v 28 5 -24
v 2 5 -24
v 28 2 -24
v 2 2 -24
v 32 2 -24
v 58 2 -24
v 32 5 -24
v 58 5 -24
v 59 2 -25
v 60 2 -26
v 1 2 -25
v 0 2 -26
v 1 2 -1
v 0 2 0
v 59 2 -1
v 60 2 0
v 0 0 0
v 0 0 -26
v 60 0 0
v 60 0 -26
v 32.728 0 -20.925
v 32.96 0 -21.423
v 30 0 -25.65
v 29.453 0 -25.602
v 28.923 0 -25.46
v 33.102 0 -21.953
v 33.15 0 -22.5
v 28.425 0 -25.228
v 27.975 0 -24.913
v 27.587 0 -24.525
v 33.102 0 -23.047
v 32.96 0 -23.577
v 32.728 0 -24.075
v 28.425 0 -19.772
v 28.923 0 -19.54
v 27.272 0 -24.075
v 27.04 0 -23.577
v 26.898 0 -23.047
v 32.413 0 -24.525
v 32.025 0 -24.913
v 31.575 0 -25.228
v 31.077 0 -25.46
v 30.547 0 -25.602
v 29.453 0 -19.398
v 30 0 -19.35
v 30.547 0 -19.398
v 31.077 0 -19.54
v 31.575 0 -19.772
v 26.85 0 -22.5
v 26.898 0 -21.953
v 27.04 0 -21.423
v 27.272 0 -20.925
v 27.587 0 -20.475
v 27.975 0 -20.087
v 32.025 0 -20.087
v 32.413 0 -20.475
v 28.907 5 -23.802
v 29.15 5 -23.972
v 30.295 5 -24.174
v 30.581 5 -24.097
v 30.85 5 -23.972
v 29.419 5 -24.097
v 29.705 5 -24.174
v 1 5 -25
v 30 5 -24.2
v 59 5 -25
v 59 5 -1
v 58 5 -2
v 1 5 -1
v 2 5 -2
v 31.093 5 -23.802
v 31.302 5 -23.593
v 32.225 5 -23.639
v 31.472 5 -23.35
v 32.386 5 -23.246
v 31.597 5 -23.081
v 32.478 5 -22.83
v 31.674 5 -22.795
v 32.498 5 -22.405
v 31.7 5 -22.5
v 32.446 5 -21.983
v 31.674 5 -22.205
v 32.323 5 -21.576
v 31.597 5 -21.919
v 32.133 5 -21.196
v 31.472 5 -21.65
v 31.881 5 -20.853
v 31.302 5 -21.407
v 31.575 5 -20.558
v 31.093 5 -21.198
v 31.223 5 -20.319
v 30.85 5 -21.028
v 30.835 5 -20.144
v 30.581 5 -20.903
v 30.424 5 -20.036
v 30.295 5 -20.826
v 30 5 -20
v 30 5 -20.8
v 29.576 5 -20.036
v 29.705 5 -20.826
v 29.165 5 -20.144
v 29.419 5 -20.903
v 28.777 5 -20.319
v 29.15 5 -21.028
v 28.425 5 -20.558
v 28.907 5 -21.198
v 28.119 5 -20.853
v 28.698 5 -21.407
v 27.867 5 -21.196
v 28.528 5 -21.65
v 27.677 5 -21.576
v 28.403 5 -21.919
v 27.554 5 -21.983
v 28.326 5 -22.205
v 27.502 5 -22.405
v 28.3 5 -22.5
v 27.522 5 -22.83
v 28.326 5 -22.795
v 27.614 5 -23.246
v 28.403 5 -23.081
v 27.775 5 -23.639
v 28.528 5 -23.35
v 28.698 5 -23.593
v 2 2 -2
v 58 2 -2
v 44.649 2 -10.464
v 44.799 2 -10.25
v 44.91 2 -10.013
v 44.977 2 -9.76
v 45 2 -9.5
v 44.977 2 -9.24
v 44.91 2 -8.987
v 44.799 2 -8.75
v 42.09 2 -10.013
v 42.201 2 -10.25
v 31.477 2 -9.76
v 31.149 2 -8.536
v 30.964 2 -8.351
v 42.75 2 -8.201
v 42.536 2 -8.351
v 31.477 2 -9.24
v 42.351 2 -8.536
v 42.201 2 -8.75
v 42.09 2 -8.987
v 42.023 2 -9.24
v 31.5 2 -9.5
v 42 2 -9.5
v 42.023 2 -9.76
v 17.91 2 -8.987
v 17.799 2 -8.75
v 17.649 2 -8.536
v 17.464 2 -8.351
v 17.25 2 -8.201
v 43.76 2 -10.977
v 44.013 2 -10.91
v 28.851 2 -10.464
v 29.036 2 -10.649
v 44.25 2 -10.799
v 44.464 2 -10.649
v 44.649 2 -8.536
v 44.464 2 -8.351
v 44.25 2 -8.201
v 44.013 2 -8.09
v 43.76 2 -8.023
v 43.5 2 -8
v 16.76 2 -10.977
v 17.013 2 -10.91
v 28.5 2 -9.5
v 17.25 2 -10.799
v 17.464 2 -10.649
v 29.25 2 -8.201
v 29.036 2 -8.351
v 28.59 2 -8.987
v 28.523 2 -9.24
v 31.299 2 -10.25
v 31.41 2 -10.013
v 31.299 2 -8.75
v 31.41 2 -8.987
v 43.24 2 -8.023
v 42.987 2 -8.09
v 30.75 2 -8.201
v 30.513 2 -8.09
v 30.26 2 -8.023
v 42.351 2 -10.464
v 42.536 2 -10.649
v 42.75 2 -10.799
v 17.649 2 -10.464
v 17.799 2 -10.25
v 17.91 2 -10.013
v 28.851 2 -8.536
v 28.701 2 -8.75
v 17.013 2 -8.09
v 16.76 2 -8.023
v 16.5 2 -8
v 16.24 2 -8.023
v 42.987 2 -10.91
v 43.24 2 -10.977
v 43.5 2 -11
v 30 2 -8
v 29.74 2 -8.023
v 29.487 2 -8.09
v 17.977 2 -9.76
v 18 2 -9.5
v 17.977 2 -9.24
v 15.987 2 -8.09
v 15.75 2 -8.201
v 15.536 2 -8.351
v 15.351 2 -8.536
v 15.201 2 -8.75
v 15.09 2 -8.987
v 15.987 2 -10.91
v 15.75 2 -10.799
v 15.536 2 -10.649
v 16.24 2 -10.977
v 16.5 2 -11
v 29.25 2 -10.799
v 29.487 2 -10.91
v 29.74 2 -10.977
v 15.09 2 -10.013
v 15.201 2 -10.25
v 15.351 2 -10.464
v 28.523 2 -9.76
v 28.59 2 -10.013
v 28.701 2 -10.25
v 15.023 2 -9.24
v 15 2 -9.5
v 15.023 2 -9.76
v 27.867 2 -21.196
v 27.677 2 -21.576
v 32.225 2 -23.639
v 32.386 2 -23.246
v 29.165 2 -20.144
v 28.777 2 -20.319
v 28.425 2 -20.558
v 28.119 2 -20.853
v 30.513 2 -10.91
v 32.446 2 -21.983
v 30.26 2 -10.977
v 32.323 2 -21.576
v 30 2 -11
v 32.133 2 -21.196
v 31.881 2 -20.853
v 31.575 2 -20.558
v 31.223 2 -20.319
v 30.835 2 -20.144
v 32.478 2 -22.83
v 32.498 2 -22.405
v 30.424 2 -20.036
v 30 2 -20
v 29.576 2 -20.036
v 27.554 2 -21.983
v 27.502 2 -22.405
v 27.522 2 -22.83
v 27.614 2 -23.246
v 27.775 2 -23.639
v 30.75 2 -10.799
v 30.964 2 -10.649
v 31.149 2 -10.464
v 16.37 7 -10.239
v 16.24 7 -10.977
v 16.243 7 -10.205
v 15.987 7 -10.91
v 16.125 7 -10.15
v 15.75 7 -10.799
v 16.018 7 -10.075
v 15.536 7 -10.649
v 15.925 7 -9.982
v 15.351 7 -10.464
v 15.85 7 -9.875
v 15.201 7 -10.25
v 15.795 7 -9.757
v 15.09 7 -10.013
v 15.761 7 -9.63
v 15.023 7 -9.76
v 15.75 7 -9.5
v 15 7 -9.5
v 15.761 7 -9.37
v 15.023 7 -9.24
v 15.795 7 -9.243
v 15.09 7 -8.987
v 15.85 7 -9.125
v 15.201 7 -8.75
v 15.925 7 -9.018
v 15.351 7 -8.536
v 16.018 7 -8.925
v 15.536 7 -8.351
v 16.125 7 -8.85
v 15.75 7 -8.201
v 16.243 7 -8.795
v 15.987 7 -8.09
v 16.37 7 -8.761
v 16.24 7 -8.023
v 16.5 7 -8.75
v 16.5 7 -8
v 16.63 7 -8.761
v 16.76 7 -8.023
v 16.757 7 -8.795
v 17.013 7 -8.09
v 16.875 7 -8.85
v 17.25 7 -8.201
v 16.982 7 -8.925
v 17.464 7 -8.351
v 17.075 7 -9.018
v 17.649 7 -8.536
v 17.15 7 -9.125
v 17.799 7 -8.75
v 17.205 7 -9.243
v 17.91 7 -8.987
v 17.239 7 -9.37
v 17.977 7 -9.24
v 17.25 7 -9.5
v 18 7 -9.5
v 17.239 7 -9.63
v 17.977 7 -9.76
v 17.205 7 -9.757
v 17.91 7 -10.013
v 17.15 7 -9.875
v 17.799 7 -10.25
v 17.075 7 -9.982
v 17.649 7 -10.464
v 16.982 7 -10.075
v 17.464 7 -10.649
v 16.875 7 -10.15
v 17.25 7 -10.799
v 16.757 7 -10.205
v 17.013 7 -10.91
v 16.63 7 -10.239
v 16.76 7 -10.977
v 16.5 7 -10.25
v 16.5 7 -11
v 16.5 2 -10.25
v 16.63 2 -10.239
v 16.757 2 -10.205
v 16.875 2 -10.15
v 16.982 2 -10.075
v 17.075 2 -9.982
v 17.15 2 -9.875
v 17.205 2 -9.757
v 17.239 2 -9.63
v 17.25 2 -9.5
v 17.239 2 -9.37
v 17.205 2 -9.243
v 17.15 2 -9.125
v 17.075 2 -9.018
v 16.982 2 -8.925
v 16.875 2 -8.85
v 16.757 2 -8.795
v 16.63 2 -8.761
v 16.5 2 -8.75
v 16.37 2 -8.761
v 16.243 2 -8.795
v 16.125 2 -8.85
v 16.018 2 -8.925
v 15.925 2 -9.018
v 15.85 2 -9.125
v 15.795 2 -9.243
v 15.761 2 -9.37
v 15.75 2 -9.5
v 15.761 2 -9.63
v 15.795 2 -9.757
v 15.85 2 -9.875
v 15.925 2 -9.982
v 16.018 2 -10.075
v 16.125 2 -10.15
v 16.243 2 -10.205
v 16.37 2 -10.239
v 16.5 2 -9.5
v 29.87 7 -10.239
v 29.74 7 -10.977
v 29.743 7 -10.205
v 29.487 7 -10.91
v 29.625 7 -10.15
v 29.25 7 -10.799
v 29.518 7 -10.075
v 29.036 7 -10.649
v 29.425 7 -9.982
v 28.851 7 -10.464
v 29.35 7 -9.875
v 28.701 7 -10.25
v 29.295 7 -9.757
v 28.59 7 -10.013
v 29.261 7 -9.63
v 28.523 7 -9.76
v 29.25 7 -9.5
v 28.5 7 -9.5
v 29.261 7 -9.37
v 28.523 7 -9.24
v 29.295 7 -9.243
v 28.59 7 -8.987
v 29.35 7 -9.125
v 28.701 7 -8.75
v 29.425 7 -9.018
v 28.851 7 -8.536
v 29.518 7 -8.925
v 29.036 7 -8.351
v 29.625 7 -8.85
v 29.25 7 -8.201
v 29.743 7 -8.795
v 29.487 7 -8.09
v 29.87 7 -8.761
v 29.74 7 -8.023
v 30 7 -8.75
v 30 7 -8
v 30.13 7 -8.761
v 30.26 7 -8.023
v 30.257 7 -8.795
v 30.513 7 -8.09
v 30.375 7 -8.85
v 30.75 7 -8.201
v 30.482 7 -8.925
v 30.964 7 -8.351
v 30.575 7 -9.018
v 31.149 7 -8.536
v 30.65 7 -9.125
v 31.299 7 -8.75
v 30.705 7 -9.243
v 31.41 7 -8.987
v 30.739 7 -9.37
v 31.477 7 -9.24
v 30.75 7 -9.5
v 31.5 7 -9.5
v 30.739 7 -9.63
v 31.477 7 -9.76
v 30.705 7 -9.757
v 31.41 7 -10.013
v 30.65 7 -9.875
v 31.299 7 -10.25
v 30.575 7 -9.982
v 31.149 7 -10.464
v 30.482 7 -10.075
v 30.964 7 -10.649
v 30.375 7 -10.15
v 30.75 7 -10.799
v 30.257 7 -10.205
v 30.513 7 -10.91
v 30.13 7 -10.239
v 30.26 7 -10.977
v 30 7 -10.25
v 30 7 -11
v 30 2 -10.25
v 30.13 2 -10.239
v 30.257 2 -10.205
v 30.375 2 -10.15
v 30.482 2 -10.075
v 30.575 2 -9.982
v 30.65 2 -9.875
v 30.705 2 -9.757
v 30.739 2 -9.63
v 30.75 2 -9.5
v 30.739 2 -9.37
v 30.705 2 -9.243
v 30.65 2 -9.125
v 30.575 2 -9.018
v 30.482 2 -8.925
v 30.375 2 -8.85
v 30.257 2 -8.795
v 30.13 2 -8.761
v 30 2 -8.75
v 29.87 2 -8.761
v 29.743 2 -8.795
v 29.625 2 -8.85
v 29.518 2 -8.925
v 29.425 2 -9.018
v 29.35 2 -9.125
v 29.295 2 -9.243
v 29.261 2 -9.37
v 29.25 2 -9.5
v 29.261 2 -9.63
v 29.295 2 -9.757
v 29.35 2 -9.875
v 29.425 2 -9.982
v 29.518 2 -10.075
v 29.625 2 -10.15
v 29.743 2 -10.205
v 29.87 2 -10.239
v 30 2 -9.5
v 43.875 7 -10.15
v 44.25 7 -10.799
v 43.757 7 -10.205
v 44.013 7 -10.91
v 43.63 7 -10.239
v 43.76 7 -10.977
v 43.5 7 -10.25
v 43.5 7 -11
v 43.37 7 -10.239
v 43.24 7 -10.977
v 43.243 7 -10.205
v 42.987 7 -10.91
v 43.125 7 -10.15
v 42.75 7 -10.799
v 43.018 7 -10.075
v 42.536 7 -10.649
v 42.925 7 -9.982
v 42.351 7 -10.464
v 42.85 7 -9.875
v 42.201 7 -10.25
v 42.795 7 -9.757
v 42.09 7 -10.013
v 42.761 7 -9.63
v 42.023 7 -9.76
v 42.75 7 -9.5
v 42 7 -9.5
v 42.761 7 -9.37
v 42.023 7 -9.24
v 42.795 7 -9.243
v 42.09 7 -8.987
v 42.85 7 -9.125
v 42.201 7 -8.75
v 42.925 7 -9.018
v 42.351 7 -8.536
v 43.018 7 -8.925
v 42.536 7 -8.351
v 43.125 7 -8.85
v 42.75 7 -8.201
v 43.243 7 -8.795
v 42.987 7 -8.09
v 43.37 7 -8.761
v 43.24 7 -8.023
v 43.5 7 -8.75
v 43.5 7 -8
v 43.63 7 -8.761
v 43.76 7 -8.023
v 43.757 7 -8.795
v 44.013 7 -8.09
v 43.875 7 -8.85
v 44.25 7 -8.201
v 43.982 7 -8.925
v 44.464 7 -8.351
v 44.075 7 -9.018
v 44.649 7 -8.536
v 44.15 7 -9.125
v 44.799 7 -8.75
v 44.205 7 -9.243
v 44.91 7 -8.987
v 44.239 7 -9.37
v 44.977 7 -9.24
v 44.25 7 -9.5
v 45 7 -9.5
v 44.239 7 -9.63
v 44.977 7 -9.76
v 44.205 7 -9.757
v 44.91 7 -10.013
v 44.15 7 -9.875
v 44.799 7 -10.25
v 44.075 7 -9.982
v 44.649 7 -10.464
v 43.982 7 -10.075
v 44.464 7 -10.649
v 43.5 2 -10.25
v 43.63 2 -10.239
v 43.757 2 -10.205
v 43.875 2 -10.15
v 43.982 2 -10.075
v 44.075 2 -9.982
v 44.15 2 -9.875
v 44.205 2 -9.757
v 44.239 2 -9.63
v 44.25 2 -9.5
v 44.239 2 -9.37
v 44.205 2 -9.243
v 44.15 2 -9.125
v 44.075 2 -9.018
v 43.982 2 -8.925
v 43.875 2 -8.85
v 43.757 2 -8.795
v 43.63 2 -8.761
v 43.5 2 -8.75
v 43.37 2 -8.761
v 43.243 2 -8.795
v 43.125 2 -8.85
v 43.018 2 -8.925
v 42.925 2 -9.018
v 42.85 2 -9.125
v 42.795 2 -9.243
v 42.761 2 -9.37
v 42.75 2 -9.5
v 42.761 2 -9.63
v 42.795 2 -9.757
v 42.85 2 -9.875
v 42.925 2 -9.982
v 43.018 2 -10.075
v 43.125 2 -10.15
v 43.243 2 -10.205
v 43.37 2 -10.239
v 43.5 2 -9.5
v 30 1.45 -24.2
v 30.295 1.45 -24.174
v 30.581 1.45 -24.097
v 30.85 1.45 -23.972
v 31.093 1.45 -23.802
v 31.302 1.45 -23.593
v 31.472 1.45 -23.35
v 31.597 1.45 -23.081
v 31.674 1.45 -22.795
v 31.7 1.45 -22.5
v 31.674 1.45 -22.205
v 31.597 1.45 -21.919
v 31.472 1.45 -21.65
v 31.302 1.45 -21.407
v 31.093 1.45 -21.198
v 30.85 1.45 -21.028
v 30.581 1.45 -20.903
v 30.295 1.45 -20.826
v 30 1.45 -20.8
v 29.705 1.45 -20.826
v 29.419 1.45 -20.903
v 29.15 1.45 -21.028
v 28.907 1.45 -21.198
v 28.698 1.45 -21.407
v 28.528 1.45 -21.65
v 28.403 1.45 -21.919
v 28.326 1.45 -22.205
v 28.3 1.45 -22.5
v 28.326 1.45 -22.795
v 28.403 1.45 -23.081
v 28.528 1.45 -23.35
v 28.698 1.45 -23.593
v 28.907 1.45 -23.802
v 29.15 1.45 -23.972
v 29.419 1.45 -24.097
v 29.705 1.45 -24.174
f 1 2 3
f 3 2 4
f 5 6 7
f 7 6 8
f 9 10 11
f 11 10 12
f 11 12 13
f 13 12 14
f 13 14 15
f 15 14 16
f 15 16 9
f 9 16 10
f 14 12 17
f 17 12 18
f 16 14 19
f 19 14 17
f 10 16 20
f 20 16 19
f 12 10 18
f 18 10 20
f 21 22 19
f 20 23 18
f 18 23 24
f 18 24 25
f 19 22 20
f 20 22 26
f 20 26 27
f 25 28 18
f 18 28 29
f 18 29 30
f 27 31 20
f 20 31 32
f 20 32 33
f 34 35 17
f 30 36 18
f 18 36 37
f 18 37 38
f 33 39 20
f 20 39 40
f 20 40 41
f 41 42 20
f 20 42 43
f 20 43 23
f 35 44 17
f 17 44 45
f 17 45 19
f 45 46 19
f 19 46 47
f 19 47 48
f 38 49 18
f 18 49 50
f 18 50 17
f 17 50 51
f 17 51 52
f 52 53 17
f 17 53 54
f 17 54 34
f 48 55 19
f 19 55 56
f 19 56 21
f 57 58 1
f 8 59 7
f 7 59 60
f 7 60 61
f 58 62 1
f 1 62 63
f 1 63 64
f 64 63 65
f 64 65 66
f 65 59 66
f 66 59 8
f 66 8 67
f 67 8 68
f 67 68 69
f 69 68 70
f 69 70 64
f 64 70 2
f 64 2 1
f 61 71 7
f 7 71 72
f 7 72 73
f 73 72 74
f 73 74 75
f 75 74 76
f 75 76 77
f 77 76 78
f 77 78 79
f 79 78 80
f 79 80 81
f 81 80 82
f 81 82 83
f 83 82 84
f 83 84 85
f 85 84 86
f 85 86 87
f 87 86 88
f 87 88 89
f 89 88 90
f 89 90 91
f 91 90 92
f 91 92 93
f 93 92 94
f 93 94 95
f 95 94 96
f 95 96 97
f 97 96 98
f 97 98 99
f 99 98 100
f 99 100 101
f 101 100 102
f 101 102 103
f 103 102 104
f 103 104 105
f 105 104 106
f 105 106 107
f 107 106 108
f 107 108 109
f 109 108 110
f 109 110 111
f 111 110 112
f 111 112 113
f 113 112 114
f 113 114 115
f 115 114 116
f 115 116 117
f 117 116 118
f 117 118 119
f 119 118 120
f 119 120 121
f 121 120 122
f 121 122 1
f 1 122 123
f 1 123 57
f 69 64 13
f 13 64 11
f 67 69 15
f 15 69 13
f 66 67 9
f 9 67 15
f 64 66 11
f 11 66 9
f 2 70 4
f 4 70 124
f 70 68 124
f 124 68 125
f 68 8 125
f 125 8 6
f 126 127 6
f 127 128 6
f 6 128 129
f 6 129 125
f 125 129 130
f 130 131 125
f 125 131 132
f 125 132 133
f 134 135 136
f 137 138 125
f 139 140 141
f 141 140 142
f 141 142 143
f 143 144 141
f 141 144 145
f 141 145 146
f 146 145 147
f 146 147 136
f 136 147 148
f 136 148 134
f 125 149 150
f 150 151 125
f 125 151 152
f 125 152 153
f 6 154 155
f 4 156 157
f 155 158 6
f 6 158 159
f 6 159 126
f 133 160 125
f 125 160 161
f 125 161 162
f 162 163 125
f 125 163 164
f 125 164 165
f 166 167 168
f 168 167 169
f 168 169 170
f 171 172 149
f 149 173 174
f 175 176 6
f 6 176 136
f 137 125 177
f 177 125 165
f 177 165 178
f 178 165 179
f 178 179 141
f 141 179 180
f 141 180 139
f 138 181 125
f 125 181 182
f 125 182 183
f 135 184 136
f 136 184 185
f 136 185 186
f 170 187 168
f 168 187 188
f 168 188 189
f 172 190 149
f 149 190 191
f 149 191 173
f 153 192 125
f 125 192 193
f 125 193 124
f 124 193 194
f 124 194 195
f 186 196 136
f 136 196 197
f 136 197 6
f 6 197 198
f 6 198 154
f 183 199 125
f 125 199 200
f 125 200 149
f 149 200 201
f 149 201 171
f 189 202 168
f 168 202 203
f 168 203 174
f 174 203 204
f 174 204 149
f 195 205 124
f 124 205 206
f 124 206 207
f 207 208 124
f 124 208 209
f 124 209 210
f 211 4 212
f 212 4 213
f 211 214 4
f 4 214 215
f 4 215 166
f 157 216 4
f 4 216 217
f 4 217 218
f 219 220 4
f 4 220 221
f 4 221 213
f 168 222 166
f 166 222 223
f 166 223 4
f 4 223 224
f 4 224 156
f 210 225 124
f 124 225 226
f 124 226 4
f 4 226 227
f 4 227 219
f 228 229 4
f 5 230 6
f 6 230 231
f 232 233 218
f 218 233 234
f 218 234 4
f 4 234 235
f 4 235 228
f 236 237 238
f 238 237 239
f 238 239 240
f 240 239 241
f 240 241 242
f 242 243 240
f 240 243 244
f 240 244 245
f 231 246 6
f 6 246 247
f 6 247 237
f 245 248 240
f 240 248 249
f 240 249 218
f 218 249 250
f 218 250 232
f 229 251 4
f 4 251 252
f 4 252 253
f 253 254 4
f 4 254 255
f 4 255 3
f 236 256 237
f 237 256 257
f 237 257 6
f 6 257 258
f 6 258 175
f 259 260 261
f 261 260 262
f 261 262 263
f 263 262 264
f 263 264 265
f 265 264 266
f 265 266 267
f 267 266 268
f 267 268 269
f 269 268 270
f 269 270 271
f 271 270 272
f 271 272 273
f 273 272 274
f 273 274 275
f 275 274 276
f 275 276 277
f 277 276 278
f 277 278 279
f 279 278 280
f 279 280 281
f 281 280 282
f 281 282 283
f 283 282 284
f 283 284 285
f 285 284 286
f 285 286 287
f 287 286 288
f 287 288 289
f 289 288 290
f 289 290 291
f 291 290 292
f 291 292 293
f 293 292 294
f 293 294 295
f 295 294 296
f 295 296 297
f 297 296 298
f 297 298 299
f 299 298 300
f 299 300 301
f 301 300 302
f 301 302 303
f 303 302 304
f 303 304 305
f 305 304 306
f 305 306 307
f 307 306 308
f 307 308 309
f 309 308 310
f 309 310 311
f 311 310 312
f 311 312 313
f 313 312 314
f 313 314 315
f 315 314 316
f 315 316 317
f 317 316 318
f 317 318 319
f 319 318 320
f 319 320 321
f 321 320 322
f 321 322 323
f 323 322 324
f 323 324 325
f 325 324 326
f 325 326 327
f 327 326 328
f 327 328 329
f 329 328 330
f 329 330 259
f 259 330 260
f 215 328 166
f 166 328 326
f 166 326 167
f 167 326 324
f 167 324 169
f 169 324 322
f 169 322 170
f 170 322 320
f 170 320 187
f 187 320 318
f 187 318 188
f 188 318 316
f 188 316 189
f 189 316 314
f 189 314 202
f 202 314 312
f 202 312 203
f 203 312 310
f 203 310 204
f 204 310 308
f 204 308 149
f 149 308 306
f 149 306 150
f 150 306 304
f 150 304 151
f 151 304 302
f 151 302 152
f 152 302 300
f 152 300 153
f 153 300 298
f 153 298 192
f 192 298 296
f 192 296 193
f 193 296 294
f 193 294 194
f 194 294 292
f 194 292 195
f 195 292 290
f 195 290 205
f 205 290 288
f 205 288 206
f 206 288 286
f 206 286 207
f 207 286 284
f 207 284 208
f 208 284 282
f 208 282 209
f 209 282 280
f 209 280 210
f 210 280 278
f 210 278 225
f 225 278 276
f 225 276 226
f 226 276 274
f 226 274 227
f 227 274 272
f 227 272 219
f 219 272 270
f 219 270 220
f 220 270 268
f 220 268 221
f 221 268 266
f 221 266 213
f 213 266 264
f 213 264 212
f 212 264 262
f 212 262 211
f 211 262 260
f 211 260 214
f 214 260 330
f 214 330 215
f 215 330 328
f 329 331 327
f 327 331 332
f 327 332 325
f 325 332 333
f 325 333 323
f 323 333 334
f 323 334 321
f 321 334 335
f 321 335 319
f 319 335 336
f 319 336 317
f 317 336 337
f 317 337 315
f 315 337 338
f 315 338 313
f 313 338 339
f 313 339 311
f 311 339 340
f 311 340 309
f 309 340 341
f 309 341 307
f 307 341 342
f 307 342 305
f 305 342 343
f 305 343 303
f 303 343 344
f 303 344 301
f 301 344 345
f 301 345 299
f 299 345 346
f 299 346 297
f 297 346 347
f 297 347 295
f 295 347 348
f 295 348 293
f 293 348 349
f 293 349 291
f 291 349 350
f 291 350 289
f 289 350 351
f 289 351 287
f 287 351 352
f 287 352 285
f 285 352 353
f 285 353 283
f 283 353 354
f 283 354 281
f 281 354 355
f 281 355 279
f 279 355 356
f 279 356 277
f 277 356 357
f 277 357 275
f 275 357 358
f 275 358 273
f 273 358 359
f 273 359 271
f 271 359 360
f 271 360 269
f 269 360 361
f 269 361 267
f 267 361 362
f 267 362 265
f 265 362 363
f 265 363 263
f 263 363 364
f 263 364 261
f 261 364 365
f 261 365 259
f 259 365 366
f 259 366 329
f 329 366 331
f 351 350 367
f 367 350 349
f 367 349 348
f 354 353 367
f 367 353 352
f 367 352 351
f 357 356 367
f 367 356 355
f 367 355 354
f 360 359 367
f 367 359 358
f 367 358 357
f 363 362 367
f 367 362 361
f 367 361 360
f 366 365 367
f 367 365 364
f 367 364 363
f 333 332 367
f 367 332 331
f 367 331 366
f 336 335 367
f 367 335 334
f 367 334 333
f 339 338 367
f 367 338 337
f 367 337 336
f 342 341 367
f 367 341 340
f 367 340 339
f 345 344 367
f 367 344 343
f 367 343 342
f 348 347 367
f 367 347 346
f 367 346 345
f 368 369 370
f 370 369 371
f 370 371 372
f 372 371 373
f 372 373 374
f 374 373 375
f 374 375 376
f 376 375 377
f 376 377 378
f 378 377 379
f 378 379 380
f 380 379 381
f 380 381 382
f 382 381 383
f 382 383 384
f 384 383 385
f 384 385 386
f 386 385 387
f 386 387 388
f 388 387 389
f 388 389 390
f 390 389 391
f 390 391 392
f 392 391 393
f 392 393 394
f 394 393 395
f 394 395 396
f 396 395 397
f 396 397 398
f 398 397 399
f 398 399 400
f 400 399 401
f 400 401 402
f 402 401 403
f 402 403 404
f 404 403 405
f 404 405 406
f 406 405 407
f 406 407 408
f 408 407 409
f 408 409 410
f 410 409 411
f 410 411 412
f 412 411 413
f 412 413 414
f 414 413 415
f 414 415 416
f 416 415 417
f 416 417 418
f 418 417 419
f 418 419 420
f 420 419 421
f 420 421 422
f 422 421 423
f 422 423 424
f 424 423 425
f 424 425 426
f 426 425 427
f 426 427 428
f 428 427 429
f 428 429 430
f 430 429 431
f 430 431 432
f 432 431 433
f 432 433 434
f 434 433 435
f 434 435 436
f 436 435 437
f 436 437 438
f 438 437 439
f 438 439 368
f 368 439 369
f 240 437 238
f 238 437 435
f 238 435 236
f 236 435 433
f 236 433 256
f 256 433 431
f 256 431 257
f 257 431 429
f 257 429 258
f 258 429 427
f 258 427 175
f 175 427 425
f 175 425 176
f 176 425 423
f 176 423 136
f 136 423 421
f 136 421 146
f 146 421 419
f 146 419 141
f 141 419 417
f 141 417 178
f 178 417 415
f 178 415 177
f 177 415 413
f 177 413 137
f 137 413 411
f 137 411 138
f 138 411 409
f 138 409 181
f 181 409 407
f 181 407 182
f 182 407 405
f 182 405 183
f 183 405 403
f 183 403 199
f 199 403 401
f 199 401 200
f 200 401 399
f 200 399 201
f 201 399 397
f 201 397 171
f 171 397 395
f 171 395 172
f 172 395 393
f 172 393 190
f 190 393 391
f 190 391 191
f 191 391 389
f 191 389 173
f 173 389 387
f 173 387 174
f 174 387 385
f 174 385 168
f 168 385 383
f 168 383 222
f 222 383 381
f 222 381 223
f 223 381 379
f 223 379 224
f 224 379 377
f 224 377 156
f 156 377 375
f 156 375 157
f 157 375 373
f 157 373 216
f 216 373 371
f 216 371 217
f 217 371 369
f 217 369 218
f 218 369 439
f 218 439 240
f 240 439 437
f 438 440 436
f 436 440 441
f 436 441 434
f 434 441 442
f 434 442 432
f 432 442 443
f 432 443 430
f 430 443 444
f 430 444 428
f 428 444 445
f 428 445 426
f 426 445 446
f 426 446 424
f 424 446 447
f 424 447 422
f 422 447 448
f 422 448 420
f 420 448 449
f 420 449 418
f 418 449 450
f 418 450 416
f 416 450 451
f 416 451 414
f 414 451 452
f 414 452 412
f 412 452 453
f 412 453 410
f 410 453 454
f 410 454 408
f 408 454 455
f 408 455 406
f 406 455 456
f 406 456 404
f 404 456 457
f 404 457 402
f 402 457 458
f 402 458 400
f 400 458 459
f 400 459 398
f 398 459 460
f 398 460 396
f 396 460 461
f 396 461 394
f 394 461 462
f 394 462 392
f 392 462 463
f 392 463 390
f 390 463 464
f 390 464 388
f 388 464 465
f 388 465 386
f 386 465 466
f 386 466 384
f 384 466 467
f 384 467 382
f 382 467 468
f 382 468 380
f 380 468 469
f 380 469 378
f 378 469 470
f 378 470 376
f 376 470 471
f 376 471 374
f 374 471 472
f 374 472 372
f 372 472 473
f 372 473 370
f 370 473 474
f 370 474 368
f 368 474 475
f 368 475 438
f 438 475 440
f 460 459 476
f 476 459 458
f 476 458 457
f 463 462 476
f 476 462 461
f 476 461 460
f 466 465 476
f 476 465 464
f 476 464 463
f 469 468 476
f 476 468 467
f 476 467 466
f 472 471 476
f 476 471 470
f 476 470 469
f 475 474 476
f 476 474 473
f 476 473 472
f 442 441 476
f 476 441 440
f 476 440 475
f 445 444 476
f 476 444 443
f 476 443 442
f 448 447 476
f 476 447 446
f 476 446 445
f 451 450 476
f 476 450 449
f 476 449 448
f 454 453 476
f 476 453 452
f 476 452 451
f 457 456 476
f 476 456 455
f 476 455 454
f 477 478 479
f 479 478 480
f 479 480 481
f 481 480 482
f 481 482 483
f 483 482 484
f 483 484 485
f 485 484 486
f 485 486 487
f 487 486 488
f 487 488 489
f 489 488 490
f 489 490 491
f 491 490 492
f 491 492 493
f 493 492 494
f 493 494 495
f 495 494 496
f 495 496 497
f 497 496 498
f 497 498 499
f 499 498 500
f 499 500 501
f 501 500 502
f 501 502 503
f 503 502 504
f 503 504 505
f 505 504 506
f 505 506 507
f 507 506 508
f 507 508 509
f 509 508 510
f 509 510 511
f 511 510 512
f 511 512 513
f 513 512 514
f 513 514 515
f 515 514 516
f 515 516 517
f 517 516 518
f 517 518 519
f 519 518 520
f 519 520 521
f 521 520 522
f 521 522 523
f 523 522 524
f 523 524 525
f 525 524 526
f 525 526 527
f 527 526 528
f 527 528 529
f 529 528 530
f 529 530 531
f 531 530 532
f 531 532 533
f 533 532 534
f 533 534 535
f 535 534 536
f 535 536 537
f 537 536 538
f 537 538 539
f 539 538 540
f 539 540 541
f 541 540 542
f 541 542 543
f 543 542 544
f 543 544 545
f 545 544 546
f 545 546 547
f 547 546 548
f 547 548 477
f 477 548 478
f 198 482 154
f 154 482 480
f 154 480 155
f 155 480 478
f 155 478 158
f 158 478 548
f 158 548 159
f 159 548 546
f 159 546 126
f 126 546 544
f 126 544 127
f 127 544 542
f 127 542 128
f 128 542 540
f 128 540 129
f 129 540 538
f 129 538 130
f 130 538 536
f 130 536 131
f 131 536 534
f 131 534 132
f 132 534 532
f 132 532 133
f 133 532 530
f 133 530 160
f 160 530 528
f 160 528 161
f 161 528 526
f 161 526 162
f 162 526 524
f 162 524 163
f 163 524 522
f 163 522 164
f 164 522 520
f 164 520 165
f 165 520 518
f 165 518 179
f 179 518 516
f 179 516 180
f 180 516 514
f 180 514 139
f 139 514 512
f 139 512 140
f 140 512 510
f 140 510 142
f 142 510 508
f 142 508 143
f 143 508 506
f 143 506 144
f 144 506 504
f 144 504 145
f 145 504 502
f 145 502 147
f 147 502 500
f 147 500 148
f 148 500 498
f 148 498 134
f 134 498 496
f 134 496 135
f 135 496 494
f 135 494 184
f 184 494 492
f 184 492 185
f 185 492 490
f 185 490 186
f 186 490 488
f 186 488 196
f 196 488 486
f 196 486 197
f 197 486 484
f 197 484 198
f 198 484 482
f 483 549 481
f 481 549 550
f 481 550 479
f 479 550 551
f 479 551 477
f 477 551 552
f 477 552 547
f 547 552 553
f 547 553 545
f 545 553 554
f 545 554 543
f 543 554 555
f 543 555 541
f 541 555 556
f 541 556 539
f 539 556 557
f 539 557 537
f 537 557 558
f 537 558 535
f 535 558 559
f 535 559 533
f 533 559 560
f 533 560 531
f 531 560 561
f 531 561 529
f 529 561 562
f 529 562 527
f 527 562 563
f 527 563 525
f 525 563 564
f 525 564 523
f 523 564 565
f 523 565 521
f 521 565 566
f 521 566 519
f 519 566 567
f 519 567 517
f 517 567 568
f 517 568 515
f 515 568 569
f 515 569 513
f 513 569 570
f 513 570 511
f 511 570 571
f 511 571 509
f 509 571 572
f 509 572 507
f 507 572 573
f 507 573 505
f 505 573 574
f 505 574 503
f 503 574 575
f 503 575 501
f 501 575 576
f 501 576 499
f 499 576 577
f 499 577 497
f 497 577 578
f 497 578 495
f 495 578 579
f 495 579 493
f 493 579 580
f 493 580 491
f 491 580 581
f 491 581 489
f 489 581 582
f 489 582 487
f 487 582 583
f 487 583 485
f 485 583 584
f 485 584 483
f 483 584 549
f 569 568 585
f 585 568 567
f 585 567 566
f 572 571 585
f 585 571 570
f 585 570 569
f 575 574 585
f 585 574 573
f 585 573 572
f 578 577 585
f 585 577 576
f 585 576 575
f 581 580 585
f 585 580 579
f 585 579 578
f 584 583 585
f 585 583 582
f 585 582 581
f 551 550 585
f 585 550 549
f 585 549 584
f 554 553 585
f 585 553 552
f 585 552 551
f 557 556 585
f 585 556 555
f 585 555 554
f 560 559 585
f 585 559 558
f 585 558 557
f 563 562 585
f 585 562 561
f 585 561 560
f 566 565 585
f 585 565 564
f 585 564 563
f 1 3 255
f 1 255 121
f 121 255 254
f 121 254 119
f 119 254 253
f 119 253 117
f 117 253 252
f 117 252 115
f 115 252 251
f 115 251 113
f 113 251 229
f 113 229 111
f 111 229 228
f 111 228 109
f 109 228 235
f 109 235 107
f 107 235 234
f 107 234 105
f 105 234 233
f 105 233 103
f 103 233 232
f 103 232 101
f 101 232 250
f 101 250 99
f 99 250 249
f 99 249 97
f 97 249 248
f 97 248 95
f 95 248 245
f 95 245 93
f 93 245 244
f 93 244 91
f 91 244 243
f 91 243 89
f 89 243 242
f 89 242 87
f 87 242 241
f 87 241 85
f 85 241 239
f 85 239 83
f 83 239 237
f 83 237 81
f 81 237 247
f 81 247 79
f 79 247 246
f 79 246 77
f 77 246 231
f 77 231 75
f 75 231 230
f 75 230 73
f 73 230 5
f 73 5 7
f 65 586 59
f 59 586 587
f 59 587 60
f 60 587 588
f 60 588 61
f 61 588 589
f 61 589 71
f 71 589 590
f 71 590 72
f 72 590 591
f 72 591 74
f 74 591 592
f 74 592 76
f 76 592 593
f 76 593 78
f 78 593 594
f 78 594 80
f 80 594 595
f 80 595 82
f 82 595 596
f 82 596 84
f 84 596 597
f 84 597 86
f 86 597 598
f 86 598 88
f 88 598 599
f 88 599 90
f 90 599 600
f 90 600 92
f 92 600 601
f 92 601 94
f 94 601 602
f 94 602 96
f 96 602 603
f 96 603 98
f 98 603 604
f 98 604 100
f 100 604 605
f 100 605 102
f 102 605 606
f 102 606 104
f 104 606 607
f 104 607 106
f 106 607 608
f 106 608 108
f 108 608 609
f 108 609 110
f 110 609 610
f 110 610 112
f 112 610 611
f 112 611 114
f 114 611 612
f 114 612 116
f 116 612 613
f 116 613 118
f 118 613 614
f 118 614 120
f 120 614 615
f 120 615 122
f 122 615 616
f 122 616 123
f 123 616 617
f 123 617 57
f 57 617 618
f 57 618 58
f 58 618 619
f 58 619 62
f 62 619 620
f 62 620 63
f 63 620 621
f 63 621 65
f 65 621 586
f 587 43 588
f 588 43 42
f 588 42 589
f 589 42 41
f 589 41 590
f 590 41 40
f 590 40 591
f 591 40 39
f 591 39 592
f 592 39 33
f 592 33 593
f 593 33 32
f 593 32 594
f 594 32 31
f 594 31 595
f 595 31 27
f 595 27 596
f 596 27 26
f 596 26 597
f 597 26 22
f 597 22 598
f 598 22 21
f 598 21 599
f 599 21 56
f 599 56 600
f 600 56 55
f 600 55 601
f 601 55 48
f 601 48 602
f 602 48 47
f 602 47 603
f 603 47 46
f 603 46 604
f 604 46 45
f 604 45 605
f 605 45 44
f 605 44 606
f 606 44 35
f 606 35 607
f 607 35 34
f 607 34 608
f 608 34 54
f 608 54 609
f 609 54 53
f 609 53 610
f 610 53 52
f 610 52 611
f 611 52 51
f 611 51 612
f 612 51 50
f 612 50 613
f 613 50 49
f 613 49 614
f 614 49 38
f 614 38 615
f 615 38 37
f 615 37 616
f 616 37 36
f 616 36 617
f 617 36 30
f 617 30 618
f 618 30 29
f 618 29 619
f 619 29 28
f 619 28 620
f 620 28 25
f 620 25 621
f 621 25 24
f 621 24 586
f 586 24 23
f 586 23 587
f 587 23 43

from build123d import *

# Parameters (mm, degrees)
SKETCH1_W                                       = 60
SKETCH1_H                                       = 26
BOSS_EXTRUDE1_DEPTH                             = 2
SKETCH2_W                                       = 58
SKETCH2_H                                       = 24
SKETCH2_W_2                                     = 56
SKETCH2_H_2                                     = 22
BOSS_EXTRUDE2_DEPTH                             = 3
SKETCH3_R                                       = 1.5
SKETCH3_R_2                                     = 0.75
BOSS_EXTRUDE3_DEPTH                             = 5
SKETCH6_R                                       = 2.5
BOSS_EXTRUDE4_DEPTH                             = 3
CSK_FOR_M3_FLAT_HEAD_MACHINE_SCREW1_D           = 3.4
CSK_FOR_M3_FLAT_HEAD_MACHINE_SCREW1_CSINK_D     = 6.3
CSK_FOR_M3_FLAT_HEAD_MACHINE_SCREW1_CSINK_ANGLE = 90


with BuildPart() as part:
    # Sketch1 → Boss-Extrude1 (new body)
    with BuildSketch(Plane(origin=(0, 0, 0), x_dir=(1, 0, 0), z_dir=(0, 1, 0))):
        with Locations((30, 13)):
            Rectangle(SKETCH1_W, SKETCH1_H)
    extrude(amount=BOSS_EXTRUDE1_DEPTH)

    # Sketch2 → Boss-Extrude2 (add)
    with BuildSketch(Plane(origin=(0, 2, 0), x_dir=(1, 0, 0), z_dir=(0, 1, 0))):
        with Locations((30, 13)):
            Rectangle(SKETCH2_W, SKETCH2_H)
        with Locations((30, 13)):
            Rectangle(SKETCH2_W_2, SKETCH2_H_2, mode=Mode.SUBTRACT)
    extrude(amount=BOSS_EXTRUDE2_DEPTH)

    # Sketch3 → Boss-Extrude3 (add)
    # profile 1 of 3: a face of its own
    with BuildSketch(Plane(origin=(0, 2, 0), x_dir=(1, 0, 0), z_dir=(0, 1, 0))):
        with Locations(Location((16.5, 9.5, 0), (0, 0, 90))):
            Circle(SKETCH3_R)
        with Locations(Location((16.5, 9.5, 0), (0, 0, 270))):
            Circle(SKETCH3_R_2, mode=Mode.SUBTRACT)
    # profile 2 of 3: a face of its own
    with BuildSketch(Plane(origin=(0, 2, 0), x_dir=(1, 0, 0), z_dir=(0, 1, 0))):
        with Locations(Location((30, 9.5, 0), (0, 0, 90))):
            Circle(SKETCH3_R)
        with Locations(Location((30, 9.5, 0), (0, 0, 270))):
            Circle(SKETCH3_R_2, mode=Mode.SUBTRACT)
    # profile 3 of 3: a face of its own
    with BuildSketch(Plane(origin=(0, 2, 0), x_dir=(1, 0, 0), z_dir=(0, 1, 0))):
        with Locations(Location((43.5, 9.5, 0), (0, 0, 90))):
            Circle(SKETCH3_R)
        with Locations(Location((43.5, 9.5, 0), (0, 0, 270))):
            Circle(SKETCH3_R_2, mode=Mode.SUBTRACT)
    extrude(amount=BOSS_EXTRUDE3_DEPTH)

    # Sketch6 → Boss-Extrude4 (add)
    with BuildSketch(Plane(origin=(0, 2, 0), x_dir=(1, 0, 0), z_dir=(0, 1, 0))):
        with Locations((30, 22.5)):
            Circle(SKETCH6_R)
    extrude(amount=BOSS_EXTRUDE4_DEPTH)

    # CSK for M3 Flat Head Machine Screw1 (through all)
    with Locations(Plane(origin=(0, 0, 0), x_dir=(-1, 0, 0), z_dir=(0, -1, 0))):
        with Locations((-30, 22.5)):
            CounterSinkHole(CSK_FOR_M3_FLAT_HEAD_MACHINE_SCREW1_D / 2, CSK_FOR_M3_FLAT_HEAD_MACHINE_SCREW1_CSINK_D / 2, counter_sink_angle=CSK_FOR_M3_FLAT_HEAD_MACHINE_SCREW1_CSINK_ANGLE)


solid = part.part
